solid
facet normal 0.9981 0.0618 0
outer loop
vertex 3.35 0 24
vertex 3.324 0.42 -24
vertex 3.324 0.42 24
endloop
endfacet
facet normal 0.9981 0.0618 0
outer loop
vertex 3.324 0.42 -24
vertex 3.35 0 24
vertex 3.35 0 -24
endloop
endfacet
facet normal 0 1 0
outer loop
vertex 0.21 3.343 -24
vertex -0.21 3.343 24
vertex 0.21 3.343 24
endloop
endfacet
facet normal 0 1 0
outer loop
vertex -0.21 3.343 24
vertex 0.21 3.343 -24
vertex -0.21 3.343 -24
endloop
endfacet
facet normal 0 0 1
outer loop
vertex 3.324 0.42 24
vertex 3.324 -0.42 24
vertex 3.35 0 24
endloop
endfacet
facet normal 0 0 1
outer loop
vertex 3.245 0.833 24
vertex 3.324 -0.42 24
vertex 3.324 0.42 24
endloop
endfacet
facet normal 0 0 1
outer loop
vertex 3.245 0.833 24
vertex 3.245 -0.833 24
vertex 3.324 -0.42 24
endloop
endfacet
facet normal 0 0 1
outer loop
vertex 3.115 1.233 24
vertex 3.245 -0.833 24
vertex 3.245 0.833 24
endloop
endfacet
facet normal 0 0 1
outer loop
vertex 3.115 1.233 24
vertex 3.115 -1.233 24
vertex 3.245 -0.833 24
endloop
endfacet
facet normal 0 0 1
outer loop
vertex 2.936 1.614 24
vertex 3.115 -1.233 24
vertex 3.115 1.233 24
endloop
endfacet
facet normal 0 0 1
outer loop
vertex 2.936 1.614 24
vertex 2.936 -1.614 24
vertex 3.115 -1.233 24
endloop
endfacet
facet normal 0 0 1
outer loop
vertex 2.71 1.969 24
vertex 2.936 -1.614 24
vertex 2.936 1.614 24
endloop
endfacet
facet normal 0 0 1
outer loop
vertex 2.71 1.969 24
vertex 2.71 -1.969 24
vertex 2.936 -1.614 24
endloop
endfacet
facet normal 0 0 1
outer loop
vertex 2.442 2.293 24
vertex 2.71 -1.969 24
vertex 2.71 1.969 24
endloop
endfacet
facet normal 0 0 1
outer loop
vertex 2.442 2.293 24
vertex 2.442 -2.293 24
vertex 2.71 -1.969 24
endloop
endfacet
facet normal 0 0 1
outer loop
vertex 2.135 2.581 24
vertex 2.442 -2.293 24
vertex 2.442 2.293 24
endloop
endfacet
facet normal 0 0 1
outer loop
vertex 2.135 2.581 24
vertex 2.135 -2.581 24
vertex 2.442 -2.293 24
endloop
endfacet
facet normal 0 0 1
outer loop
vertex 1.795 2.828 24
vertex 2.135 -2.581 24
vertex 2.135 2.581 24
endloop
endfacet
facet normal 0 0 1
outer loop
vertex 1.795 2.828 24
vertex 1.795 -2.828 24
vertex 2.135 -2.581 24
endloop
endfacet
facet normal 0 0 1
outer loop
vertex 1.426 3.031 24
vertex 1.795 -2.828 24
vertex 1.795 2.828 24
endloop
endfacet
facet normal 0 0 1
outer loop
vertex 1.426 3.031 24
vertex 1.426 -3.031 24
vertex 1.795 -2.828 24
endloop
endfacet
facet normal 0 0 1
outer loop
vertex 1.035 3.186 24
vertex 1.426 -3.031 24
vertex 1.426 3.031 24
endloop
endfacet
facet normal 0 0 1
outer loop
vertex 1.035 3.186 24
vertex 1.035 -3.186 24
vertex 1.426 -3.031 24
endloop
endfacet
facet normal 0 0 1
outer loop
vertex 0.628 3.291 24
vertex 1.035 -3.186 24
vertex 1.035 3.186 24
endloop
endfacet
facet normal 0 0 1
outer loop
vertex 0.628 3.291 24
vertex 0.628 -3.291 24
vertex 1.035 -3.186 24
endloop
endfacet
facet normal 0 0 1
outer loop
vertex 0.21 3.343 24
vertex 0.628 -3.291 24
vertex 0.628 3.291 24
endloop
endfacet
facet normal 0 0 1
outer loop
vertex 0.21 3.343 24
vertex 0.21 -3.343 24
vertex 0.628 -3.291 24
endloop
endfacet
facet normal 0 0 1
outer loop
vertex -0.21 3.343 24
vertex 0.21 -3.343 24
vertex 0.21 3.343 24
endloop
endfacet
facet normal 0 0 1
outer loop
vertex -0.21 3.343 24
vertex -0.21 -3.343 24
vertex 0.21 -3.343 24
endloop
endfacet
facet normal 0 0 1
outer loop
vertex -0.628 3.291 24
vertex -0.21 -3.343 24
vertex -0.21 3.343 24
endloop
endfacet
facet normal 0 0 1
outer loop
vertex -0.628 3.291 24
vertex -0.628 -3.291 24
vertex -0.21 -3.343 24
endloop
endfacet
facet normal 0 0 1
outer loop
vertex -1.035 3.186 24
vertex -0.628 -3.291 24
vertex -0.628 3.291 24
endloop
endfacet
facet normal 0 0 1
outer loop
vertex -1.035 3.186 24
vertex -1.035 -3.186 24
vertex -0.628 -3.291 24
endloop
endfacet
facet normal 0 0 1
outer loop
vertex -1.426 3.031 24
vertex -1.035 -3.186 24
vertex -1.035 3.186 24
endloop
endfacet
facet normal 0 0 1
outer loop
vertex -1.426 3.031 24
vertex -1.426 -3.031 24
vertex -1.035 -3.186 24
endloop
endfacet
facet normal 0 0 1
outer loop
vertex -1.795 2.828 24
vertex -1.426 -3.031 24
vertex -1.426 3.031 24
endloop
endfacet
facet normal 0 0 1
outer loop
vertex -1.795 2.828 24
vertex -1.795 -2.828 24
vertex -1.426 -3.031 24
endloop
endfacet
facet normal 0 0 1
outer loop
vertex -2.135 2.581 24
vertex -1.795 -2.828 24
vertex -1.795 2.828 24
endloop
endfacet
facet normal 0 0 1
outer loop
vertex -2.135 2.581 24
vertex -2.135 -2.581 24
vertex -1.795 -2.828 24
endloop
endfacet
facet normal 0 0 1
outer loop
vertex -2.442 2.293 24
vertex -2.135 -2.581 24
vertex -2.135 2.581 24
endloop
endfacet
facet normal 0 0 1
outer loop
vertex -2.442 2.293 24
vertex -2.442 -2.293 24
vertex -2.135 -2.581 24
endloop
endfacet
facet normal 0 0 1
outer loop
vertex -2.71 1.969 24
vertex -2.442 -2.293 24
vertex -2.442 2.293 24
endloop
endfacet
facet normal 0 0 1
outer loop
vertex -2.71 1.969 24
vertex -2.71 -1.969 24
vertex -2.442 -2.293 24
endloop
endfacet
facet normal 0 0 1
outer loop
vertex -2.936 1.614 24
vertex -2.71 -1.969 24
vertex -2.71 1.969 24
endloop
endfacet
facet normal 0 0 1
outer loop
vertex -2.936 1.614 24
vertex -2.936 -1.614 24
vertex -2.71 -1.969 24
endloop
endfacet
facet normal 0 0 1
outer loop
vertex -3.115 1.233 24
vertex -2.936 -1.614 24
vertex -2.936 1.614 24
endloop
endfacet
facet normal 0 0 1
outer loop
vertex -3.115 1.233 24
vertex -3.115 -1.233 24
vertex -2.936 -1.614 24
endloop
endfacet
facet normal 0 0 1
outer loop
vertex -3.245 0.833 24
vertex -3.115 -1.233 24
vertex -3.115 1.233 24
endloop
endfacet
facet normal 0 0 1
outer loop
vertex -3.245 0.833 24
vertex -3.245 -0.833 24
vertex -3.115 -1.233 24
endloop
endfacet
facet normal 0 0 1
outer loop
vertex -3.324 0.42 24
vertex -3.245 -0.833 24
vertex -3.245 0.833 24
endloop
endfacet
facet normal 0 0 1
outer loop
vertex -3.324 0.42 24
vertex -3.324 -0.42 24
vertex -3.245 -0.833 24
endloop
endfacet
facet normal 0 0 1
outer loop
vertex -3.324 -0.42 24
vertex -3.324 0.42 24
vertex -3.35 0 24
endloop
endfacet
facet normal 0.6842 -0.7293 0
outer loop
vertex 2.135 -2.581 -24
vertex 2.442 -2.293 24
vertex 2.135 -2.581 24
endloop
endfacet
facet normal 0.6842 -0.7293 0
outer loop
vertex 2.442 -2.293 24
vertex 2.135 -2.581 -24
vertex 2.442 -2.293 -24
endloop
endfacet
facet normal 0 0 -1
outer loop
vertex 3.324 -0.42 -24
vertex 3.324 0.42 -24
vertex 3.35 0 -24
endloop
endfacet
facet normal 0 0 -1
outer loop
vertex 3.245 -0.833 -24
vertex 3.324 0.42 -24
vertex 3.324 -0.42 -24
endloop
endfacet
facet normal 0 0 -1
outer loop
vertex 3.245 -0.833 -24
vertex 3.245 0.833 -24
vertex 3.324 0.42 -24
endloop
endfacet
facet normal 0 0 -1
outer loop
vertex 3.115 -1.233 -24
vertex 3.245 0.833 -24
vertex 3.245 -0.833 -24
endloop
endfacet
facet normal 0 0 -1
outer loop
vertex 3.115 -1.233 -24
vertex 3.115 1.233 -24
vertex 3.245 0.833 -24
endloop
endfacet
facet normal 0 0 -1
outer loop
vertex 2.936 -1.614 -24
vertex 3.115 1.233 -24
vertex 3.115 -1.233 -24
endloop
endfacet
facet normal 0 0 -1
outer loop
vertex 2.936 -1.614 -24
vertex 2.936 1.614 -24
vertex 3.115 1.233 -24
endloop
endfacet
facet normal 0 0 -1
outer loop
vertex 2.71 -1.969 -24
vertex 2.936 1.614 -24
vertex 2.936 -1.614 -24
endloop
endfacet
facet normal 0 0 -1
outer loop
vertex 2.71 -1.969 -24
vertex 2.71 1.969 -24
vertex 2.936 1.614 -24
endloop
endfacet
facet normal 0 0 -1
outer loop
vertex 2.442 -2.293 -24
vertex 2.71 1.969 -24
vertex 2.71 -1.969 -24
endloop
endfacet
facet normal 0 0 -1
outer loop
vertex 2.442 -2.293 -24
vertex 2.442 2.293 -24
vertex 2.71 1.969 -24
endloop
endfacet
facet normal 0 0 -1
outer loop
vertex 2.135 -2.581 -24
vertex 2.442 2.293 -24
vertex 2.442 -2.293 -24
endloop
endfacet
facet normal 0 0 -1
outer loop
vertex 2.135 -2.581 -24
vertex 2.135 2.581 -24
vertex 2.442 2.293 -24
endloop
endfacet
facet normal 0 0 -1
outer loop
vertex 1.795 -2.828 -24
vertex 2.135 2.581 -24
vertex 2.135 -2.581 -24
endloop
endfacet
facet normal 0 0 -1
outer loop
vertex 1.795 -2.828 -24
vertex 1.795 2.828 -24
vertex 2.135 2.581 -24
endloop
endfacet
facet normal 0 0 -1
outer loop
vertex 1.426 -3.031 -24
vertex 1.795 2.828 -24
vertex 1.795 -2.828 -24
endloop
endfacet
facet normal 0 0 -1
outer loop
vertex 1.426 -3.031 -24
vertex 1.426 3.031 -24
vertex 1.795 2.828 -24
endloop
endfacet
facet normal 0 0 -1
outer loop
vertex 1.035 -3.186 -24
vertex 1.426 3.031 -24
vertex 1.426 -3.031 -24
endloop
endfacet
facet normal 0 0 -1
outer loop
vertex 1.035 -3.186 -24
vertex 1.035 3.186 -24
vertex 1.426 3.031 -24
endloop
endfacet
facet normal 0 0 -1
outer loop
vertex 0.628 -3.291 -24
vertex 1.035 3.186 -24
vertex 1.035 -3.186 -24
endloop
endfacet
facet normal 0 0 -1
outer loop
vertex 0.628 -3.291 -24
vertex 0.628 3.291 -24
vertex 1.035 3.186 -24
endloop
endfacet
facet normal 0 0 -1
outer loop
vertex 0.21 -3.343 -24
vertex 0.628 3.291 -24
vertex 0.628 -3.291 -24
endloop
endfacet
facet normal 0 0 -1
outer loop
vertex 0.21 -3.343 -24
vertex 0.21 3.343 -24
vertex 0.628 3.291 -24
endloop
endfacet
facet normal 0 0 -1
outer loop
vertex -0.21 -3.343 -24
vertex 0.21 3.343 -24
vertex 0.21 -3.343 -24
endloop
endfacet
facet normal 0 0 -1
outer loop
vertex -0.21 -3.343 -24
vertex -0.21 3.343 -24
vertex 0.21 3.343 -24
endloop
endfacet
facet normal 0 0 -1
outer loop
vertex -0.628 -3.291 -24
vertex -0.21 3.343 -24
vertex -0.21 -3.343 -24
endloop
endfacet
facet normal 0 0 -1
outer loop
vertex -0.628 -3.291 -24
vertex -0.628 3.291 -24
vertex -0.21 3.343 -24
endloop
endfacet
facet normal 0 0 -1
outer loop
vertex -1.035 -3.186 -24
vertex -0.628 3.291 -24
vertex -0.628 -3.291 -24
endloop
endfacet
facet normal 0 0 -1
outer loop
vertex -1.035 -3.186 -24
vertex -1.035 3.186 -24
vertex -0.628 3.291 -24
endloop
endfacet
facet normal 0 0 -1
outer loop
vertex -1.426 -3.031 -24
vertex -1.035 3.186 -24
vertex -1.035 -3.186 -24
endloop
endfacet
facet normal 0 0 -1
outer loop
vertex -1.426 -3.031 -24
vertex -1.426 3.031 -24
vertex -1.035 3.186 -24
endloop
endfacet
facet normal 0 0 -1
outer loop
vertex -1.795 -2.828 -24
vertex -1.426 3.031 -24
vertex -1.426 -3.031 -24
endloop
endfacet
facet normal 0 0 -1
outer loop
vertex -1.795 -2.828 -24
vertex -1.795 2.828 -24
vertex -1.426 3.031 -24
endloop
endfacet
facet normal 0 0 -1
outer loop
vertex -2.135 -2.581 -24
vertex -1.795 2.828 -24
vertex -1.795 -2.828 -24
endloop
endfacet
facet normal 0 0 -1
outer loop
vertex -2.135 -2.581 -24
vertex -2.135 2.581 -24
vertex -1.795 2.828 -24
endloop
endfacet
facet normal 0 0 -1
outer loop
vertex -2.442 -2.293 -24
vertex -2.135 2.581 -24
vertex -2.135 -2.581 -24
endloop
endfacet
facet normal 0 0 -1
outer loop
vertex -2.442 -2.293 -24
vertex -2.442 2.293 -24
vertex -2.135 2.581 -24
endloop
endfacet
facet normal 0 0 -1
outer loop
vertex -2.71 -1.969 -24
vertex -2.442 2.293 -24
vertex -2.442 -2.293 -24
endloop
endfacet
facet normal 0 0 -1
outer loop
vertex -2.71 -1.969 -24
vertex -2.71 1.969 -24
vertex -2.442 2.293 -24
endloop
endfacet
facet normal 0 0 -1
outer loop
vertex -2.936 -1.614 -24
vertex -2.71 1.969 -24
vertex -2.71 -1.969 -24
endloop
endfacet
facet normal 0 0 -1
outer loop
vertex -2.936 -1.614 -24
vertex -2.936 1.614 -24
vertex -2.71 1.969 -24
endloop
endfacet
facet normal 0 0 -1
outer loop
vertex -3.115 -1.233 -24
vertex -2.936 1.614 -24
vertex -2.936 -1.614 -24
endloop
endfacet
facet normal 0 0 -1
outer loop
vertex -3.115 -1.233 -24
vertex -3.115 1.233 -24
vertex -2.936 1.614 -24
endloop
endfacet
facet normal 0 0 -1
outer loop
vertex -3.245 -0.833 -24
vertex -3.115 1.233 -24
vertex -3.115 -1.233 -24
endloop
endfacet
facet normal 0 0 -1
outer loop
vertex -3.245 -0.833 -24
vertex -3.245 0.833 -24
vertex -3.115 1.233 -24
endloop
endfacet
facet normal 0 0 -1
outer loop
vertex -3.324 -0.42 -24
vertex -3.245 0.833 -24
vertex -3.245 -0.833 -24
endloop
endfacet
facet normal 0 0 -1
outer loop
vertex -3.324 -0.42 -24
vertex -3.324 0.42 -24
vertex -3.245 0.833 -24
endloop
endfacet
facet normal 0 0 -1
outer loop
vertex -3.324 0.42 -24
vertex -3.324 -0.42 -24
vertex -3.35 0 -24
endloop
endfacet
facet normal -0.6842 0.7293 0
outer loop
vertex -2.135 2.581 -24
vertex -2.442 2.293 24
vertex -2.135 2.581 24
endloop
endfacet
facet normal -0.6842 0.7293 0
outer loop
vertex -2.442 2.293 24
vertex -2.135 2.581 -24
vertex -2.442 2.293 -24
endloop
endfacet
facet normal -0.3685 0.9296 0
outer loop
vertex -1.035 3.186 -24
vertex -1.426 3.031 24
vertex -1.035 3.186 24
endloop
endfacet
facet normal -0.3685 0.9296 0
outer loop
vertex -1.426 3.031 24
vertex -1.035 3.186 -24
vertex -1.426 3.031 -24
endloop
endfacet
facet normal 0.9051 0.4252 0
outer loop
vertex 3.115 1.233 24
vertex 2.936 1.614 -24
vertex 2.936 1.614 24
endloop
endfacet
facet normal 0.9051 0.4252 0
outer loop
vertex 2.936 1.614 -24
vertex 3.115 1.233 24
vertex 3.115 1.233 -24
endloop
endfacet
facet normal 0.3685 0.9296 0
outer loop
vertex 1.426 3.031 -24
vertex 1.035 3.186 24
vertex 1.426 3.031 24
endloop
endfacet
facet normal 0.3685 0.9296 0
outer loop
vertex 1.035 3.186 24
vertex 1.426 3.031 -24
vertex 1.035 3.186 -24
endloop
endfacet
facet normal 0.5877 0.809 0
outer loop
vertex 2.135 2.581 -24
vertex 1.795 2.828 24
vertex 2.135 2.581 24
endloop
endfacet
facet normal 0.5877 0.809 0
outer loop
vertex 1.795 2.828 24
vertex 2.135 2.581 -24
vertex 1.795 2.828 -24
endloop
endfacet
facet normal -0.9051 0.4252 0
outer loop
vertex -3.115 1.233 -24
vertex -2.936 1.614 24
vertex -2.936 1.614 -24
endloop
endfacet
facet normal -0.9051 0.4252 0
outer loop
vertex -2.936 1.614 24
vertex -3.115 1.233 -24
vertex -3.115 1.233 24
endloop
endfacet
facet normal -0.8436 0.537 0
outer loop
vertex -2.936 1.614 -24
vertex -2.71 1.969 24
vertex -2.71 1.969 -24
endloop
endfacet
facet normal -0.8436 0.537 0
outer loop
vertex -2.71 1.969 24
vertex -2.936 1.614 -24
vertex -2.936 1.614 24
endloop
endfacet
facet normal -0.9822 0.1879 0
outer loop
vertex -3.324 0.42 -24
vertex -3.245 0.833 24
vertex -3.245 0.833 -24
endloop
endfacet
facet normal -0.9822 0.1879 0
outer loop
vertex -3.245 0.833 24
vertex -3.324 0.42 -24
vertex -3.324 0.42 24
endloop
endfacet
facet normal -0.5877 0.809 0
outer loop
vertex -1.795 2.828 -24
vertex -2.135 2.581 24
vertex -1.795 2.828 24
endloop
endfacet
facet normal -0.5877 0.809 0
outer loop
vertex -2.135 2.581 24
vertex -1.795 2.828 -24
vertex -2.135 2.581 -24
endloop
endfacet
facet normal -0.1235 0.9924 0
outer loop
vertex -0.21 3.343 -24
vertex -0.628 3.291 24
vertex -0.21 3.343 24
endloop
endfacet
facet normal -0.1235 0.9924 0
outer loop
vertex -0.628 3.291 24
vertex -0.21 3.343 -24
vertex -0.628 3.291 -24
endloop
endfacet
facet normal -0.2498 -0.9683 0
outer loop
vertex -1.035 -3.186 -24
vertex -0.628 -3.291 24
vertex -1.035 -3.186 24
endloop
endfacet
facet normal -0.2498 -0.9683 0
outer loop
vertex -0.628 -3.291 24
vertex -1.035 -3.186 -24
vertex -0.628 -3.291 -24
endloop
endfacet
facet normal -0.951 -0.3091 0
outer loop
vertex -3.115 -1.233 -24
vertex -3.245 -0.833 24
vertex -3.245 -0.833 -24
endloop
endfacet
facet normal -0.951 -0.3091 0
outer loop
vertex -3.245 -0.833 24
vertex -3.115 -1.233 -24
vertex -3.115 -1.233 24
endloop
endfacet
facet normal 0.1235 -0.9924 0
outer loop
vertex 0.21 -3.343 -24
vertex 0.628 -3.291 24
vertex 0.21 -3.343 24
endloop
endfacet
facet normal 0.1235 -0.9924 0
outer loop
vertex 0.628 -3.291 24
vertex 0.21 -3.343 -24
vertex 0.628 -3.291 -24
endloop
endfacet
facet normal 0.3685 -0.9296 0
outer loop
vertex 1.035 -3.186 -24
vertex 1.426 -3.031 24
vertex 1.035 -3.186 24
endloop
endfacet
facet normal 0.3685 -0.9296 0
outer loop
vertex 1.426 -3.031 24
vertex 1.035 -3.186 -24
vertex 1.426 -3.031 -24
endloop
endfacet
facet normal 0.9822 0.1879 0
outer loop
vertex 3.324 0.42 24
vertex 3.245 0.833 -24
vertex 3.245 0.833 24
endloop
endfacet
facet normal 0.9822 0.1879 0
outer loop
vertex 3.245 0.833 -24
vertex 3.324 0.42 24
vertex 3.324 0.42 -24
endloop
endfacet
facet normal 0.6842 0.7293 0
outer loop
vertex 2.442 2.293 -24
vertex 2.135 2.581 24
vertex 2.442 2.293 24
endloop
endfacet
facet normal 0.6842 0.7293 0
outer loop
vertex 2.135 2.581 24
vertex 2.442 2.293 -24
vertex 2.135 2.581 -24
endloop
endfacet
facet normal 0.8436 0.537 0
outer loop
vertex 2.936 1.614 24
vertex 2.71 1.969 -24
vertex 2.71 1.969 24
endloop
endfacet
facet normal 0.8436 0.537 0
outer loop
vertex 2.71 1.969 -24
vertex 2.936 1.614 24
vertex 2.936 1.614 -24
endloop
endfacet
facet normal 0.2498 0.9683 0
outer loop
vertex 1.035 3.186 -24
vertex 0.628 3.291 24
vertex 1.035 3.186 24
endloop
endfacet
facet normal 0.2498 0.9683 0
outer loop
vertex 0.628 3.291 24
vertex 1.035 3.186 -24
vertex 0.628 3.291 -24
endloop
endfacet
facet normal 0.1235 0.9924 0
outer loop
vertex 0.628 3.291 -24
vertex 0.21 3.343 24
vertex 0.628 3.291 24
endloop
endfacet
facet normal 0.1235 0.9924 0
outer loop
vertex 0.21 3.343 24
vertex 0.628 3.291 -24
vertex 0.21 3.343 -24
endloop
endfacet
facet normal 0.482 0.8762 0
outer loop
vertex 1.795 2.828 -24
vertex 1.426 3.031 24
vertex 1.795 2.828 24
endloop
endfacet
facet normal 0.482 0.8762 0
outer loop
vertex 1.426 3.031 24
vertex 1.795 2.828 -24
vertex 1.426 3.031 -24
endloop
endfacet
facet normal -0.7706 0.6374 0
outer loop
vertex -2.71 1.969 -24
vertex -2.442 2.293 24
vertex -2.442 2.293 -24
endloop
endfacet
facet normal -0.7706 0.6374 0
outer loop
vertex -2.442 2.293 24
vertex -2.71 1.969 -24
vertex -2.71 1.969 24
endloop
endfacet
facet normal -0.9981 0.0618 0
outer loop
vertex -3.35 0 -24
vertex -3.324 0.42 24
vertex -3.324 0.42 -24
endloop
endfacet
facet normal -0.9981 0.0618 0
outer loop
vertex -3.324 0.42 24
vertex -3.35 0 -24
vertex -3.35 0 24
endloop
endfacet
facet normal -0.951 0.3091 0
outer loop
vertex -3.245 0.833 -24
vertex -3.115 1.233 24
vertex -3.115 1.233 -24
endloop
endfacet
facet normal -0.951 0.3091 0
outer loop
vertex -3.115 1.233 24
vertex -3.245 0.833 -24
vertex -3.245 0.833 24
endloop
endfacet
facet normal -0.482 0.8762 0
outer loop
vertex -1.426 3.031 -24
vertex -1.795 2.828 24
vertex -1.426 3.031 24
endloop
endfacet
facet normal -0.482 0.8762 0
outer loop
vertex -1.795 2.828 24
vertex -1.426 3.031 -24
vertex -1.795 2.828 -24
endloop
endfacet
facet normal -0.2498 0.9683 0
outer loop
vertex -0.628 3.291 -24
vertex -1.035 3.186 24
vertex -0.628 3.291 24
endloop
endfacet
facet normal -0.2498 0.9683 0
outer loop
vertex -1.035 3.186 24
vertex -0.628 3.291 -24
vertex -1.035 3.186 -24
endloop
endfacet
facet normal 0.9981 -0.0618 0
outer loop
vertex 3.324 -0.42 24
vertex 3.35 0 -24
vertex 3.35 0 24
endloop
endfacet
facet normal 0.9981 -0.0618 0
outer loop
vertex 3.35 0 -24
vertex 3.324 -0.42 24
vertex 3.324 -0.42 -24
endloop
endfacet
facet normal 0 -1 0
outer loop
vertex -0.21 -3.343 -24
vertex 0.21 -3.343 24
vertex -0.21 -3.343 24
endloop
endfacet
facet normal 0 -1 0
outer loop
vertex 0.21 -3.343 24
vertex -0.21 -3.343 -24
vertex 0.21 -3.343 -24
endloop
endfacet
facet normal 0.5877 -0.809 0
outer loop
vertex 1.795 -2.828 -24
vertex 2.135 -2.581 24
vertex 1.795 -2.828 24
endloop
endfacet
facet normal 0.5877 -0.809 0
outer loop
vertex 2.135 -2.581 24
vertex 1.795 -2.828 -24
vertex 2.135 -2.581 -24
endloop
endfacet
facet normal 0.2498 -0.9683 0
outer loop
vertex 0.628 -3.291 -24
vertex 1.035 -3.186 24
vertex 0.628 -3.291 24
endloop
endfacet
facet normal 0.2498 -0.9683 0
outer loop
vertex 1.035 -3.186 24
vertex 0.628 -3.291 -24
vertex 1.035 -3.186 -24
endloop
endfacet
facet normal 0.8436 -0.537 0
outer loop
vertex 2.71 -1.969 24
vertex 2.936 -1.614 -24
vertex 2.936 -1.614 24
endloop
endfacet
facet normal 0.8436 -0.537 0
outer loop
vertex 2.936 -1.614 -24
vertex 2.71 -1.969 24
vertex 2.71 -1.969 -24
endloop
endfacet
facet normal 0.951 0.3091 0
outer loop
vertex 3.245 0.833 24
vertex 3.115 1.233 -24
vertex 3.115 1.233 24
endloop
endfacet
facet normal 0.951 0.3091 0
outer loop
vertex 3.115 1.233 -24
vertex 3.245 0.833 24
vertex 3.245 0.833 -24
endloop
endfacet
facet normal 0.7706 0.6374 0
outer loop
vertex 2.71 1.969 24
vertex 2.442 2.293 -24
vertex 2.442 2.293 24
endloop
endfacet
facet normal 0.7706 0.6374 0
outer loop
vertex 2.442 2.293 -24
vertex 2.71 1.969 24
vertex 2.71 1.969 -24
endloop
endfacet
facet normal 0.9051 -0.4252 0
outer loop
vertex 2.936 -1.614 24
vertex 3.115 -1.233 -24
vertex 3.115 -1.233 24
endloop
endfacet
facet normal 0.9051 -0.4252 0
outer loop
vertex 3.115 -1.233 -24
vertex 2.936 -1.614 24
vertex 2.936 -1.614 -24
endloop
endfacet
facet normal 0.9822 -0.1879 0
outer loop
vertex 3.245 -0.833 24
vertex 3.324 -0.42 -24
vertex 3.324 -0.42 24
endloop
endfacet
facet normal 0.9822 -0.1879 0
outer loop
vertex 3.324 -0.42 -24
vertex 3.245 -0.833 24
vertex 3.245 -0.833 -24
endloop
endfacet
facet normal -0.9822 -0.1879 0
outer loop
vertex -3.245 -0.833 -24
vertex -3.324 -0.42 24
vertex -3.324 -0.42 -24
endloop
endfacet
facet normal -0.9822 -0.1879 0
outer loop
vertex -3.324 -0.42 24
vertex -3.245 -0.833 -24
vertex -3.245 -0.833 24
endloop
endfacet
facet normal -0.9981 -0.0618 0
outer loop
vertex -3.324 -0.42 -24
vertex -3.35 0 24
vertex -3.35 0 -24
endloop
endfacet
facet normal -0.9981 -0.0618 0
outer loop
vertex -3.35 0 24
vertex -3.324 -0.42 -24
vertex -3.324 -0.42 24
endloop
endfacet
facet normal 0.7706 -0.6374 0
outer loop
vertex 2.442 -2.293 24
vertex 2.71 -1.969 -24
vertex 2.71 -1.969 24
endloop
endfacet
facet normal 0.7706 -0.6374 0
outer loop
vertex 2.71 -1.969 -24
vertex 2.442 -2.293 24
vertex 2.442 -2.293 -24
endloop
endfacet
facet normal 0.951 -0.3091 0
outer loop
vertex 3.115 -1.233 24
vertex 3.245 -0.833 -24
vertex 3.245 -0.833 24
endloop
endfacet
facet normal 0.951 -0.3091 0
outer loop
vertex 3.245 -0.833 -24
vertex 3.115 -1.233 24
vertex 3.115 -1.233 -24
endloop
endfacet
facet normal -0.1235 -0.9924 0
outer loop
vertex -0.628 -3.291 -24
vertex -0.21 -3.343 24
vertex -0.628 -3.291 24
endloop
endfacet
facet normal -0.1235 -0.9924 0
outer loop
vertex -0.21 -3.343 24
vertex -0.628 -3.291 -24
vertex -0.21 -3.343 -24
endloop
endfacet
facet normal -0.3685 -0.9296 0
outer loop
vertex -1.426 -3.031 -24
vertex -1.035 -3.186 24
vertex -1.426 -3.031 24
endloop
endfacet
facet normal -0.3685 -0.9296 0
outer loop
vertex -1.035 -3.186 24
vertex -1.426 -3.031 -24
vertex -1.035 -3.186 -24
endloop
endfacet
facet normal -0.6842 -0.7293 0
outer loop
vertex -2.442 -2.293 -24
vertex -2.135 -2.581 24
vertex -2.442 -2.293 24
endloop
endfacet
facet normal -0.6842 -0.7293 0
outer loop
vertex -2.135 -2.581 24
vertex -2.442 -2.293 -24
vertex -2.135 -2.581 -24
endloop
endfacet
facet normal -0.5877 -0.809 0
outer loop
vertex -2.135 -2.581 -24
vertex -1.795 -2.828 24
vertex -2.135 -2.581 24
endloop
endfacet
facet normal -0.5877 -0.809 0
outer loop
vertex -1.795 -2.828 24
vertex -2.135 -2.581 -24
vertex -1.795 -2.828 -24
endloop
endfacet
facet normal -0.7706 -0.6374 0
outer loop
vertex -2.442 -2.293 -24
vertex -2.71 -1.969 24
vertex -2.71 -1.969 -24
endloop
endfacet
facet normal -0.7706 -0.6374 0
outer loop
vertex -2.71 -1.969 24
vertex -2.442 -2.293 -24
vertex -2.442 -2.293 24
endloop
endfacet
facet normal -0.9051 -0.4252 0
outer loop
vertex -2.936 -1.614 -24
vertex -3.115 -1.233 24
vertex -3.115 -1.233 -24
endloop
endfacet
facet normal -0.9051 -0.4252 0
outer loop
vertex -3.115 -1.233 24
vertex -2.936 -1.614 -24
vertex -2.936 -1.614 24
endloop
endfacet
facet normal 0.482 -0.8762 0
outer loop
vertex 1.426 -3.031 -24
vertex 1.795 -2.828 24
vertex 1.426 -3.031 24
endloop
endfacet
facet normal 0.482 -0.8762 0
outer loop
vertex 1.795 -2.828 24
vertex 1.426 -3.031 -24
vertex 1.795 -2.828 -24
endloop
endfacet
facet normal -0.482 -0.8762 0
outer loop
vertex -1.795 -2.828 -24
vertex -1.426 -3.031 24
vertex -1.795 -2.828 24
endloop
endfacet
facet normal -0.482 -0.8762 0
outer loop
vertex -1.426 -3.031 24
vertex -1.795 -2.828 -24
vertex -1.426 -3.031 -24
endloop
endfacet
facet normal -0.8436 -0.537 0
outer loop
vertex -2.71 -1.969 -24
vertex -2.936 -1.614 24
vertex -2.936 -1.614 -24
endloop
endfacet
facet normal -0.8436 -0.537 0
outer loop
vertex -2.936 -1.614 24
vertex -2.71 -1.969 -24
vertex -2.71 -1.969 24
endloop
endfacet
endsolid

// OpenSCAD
$fn = 50;


difference() {
	union() {
		translate(v = [0, 0, -24.0000000000]) {
			cylinder(h = 48, r = 3.3500000000);
		}
	}
	union() {
		translate(v = [0, 0, -100.0000000000]) {
			cylinder(h = 200, r = 0);
		}
	}
}
